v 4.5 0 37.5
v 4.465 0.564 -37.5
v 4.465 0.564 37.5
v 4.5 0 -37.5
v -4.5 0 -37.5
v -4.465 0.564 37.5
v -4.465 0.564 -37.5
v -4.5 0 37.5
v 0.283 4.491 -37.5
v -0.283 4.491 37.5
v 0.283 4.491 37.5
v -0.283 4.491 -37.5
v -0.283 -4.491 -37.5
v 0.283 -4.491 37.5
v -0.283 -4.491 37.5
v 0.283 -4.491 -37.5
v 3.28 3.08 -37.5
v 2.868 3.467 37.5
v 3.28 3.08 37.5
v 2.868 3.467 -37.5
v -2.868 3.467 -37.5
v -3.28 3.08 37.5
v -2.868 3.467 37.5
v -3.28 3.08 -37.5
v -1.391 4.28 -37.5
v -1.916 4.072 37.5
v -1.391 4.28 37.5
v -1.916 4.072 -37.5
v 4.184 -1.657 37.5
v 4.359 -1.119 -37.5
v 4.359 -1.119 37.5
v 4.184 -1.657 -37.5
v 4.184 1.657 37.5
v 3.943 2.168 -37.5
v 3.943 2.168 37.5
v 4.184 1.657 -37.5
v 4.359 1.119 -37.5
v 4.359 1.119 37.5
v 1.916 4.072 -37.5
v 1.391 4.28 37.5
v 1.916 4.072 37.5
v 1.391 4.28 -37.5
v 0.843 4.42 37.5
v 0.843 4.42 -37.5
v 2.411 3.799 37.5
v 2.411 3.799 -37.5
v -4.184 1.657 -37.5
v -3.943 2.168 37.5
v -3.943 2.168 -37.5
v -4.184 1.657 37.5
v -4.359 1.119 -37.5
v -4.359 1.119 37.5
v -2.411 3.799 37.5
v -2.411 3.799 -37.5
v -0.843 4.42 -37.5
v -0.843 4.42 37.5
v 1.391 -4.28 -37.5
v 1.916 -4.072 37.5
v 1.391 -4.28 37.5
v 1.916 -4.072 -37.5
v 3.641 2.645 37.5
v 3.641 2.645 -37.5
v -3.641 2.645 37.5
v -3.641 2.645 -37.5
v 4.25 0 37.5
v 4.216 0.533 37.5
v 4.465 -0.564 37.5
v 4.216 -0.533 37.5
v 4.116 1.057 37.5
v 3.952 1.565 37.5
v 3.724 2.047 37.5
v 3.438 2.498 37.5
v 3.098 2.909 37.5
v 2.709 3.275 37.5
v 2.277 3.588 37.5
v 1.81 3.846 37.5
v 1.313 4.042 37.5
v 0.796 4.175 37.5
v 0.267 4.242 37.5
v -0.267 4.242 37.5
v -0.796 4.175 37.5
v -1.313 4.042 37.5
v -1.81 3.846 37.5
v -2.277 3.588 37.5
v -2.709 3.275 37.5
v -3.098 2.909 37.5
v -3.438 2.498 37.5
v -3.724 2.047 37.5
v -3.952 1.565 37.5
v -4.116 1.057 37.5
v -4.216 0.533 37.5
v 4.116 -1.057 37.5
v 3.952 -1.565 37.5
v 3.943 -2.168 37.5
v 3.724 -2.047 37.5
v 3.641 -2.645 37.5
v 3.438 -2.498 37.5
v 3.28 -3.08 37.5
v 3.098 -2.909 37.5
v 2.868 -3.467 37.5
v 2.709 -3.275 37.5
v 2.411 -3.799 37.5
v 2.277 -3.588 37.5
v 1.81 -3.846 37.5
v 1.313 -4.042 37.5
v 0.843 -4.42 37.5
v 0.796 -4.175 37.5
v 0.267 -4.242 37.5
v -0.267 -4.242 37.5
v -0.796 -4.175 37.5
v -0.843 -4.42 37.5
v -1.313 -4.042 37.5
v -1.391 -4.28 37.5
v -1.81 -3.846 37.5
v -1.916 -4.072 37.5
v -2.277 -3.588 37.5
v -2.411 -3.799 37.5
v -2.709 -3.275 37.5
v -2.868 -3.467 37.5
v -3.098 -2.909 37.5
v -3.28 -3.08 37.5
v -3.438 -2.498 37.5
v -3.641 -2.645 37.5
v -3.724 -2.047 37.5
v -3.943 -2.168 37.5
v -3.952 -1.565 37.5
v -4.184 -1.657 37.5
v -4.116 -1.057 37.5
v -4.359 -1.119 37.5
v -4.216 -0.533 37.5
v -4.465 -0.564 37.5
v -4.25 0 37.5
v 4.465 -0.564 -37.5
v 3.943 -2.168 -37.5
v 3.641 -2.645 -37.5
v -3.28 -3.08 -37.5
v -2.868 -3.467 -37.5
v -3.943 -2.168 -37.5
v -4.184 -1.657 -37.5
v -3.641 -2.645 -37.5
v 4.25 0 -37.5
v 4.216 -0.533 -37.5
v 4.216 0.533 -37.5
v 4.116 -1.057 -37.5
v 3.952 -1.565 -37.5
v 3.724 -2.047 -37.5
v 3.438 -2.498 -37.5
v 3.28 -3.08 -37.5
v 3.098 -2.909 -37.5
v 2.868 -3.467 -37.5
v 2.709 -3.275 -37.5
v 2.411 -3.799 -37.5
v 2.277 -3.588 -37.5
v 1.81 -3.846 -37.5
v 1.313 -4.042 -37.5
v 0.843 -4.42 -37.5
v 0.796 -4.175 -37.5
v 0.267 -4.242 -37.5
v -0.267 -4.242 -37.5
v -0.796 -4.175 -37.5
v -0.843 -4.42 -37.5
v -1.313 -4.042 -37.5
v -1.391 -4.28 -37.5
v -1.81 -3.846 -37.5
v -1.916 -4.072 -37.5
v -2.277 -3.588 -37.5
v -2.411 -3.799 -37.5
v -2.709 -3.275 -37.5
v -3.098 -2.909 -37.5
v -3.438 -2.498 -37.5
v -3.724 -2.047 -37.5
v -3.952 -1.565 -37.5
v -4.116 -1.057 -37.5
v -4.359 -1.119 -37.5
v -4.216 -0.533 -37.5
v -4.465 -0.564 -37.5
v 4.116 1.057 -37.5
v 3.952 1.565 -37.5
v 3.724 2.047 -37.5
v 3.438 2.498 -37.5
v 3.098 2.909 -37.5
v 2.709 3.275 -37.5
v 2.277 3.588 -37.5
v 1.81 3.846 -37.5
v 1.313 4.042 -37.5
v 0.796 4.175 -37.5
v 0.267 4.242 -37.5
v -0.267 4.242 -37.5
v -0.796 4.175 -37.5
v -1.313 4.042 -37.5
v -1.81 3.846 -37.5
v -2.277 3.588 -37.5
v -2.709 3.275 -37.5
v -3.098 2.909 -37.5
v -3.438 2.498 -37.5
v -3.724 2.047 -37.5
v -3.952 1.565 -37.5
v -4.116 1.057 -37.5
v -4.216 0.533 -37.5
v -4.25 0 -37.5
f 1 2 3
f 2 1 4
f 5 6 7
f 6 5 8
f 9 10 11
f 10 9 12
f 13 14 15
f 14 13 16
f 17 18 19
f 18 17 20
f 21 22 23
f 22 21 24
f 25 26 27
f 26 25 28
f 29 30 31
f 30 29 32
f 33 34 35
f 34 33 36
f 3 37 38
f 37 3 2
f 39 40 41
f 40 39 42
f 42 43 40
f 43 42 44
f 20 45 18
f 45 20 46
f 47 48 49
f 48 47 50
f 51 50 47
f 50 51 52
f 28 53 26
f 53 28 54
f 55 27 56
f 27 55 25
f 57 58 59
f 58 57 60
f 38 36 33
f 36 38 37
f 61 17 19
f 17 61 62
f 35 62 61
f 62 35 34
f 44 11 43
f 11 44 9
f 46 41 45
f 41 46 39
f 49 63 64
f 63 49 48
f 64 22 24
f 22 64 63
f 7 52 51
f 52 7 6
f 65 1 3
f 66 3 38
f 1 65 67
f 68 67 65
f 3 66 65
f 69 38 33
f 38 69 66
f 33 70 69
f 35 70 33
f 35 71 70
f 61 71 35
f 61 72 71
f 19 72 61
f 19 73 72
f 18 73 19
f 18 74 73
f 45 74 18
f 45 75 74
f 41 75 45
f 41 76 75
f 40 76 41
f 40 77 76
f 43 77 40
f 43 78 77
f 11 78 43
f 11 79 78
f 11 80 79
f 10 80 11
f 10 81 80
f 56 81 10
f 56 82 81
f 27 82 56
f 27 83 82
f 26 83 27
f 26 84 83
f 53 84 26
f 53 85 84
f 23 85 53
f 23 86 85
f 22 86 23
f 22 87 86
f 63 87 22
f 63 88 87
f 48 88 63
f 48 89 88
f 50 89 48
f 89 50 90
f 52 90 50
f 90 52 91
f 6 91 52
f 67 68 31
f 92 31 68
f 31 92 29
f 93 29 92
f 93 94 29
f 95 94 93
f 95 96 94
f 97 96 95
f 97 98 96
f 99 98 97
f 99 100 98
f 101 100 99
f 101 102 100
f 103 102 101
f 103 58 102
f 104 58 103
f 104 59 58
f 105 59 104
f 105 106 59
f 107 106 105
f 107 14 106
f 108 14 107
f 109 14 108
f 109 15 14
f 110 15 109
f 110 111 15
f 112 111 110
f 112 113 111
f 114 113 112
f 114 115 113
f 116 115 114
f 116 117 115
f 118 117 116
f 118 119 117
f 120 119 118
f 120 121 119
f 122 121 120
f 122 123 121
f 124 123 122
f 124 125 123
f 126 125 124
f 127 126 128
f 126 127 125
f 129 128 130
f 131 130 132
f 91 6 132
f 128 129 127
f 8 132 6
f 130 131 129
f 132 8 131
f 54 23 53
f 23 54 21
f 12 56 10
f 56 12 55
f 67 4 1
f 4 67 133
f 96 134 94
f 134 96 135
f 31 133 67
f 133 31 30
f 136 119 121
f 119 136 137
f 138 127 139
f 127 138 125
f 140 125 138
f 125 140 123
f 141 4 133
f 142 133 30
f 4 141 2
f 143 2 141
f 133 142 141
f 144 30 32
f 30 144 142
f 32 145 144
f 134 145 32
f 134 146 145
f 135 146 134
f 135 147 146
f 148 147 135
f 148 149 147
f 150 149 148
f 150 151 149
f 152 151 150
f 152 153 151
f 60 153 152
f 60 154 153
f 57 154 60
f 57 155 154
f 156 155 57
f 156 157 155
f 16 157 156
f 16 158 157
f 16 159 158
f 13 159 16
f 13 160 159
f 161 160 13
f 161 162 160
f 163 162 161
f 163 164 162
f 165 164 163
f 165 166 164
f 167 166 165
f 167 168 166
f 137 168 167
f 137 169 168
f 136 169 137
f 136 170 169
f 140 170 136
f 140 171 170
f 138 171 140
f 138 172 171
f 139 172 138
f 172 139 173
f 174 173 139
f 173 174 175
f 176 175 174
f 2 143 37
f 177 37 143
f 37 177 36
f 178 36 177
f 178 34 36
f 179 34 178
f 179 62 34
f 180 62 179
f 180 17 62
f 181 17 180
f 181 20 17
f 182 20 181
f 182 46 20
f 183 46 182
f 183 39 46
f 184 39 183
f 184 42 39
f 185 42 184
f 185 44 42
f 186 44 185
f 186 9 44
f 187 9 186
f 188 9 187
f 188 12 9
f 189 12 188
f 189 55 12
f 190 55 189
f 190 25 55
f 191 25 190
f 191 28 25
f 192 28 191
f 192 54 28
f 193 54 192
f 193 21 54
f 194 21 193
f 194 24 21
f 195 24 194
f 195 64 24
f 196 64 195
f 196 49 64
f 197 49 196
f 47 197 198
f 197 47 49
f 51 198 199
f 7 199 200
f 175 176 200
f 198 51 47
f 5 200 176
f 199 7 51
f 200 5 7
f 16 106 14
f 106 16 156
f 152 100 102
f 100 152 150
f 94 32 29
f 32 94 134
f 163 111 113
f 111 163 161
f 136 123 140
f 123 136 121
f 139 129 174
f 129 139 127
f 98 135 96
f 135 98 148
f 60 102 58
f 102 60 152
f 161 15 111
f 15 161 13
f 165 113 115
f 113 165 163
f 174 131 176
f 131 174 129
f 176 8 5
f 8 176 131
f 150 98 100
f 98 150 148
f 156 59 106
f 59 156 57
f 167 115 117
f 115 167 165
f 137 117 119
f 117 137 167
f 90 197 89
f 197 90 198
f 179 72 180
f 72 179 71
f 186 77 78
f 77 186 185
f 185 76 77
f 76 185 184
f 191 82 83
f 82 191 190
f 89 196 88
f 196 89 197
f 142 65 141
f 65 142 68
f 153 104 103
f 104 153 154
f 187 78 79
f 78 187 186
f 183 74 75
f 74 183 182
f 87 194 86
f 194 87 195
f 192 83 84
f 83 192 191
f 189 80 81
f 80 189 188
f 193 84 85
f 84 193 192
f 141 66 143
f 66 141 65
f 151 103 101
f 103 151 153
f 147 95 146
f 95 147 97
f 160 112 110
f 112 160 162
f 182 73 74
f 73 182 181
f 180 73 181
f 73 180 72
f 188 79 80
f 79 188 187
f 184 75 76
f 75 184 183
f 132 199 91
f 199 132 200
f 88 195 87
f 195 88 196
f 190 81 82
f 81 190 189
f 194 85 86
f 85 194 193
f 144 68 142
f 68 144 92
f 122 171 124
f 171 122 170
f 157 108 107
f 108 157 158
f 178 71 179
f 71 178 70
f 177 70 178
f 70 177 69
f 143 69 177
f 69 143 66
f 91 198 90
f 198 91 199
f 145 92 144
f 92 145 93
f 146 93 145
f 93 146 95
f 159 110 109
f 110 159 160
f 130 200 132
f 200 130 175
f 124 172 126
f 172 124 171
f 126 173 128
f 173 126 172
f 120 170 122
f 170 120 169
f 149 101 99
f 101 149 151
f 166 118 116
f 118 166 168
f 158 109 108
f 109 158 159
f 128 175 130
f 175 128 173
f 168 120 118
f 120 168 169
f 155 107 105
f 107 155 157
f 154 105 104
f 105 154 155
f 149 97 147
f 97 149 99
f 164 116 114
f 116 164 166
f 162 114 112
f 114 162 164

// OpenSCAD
$fn = 50;


difference() {
	union() {
		translate(v = [0, 0, -37.5000000000]) {
			cylinder(h = 75, r = 4.5000000000);
		}
	}
	union() {
		translate(v = [0, 0, -100.0000000000]) {
			cylinder(h = 200, r = 4.2500000000);
		}
	}
}
